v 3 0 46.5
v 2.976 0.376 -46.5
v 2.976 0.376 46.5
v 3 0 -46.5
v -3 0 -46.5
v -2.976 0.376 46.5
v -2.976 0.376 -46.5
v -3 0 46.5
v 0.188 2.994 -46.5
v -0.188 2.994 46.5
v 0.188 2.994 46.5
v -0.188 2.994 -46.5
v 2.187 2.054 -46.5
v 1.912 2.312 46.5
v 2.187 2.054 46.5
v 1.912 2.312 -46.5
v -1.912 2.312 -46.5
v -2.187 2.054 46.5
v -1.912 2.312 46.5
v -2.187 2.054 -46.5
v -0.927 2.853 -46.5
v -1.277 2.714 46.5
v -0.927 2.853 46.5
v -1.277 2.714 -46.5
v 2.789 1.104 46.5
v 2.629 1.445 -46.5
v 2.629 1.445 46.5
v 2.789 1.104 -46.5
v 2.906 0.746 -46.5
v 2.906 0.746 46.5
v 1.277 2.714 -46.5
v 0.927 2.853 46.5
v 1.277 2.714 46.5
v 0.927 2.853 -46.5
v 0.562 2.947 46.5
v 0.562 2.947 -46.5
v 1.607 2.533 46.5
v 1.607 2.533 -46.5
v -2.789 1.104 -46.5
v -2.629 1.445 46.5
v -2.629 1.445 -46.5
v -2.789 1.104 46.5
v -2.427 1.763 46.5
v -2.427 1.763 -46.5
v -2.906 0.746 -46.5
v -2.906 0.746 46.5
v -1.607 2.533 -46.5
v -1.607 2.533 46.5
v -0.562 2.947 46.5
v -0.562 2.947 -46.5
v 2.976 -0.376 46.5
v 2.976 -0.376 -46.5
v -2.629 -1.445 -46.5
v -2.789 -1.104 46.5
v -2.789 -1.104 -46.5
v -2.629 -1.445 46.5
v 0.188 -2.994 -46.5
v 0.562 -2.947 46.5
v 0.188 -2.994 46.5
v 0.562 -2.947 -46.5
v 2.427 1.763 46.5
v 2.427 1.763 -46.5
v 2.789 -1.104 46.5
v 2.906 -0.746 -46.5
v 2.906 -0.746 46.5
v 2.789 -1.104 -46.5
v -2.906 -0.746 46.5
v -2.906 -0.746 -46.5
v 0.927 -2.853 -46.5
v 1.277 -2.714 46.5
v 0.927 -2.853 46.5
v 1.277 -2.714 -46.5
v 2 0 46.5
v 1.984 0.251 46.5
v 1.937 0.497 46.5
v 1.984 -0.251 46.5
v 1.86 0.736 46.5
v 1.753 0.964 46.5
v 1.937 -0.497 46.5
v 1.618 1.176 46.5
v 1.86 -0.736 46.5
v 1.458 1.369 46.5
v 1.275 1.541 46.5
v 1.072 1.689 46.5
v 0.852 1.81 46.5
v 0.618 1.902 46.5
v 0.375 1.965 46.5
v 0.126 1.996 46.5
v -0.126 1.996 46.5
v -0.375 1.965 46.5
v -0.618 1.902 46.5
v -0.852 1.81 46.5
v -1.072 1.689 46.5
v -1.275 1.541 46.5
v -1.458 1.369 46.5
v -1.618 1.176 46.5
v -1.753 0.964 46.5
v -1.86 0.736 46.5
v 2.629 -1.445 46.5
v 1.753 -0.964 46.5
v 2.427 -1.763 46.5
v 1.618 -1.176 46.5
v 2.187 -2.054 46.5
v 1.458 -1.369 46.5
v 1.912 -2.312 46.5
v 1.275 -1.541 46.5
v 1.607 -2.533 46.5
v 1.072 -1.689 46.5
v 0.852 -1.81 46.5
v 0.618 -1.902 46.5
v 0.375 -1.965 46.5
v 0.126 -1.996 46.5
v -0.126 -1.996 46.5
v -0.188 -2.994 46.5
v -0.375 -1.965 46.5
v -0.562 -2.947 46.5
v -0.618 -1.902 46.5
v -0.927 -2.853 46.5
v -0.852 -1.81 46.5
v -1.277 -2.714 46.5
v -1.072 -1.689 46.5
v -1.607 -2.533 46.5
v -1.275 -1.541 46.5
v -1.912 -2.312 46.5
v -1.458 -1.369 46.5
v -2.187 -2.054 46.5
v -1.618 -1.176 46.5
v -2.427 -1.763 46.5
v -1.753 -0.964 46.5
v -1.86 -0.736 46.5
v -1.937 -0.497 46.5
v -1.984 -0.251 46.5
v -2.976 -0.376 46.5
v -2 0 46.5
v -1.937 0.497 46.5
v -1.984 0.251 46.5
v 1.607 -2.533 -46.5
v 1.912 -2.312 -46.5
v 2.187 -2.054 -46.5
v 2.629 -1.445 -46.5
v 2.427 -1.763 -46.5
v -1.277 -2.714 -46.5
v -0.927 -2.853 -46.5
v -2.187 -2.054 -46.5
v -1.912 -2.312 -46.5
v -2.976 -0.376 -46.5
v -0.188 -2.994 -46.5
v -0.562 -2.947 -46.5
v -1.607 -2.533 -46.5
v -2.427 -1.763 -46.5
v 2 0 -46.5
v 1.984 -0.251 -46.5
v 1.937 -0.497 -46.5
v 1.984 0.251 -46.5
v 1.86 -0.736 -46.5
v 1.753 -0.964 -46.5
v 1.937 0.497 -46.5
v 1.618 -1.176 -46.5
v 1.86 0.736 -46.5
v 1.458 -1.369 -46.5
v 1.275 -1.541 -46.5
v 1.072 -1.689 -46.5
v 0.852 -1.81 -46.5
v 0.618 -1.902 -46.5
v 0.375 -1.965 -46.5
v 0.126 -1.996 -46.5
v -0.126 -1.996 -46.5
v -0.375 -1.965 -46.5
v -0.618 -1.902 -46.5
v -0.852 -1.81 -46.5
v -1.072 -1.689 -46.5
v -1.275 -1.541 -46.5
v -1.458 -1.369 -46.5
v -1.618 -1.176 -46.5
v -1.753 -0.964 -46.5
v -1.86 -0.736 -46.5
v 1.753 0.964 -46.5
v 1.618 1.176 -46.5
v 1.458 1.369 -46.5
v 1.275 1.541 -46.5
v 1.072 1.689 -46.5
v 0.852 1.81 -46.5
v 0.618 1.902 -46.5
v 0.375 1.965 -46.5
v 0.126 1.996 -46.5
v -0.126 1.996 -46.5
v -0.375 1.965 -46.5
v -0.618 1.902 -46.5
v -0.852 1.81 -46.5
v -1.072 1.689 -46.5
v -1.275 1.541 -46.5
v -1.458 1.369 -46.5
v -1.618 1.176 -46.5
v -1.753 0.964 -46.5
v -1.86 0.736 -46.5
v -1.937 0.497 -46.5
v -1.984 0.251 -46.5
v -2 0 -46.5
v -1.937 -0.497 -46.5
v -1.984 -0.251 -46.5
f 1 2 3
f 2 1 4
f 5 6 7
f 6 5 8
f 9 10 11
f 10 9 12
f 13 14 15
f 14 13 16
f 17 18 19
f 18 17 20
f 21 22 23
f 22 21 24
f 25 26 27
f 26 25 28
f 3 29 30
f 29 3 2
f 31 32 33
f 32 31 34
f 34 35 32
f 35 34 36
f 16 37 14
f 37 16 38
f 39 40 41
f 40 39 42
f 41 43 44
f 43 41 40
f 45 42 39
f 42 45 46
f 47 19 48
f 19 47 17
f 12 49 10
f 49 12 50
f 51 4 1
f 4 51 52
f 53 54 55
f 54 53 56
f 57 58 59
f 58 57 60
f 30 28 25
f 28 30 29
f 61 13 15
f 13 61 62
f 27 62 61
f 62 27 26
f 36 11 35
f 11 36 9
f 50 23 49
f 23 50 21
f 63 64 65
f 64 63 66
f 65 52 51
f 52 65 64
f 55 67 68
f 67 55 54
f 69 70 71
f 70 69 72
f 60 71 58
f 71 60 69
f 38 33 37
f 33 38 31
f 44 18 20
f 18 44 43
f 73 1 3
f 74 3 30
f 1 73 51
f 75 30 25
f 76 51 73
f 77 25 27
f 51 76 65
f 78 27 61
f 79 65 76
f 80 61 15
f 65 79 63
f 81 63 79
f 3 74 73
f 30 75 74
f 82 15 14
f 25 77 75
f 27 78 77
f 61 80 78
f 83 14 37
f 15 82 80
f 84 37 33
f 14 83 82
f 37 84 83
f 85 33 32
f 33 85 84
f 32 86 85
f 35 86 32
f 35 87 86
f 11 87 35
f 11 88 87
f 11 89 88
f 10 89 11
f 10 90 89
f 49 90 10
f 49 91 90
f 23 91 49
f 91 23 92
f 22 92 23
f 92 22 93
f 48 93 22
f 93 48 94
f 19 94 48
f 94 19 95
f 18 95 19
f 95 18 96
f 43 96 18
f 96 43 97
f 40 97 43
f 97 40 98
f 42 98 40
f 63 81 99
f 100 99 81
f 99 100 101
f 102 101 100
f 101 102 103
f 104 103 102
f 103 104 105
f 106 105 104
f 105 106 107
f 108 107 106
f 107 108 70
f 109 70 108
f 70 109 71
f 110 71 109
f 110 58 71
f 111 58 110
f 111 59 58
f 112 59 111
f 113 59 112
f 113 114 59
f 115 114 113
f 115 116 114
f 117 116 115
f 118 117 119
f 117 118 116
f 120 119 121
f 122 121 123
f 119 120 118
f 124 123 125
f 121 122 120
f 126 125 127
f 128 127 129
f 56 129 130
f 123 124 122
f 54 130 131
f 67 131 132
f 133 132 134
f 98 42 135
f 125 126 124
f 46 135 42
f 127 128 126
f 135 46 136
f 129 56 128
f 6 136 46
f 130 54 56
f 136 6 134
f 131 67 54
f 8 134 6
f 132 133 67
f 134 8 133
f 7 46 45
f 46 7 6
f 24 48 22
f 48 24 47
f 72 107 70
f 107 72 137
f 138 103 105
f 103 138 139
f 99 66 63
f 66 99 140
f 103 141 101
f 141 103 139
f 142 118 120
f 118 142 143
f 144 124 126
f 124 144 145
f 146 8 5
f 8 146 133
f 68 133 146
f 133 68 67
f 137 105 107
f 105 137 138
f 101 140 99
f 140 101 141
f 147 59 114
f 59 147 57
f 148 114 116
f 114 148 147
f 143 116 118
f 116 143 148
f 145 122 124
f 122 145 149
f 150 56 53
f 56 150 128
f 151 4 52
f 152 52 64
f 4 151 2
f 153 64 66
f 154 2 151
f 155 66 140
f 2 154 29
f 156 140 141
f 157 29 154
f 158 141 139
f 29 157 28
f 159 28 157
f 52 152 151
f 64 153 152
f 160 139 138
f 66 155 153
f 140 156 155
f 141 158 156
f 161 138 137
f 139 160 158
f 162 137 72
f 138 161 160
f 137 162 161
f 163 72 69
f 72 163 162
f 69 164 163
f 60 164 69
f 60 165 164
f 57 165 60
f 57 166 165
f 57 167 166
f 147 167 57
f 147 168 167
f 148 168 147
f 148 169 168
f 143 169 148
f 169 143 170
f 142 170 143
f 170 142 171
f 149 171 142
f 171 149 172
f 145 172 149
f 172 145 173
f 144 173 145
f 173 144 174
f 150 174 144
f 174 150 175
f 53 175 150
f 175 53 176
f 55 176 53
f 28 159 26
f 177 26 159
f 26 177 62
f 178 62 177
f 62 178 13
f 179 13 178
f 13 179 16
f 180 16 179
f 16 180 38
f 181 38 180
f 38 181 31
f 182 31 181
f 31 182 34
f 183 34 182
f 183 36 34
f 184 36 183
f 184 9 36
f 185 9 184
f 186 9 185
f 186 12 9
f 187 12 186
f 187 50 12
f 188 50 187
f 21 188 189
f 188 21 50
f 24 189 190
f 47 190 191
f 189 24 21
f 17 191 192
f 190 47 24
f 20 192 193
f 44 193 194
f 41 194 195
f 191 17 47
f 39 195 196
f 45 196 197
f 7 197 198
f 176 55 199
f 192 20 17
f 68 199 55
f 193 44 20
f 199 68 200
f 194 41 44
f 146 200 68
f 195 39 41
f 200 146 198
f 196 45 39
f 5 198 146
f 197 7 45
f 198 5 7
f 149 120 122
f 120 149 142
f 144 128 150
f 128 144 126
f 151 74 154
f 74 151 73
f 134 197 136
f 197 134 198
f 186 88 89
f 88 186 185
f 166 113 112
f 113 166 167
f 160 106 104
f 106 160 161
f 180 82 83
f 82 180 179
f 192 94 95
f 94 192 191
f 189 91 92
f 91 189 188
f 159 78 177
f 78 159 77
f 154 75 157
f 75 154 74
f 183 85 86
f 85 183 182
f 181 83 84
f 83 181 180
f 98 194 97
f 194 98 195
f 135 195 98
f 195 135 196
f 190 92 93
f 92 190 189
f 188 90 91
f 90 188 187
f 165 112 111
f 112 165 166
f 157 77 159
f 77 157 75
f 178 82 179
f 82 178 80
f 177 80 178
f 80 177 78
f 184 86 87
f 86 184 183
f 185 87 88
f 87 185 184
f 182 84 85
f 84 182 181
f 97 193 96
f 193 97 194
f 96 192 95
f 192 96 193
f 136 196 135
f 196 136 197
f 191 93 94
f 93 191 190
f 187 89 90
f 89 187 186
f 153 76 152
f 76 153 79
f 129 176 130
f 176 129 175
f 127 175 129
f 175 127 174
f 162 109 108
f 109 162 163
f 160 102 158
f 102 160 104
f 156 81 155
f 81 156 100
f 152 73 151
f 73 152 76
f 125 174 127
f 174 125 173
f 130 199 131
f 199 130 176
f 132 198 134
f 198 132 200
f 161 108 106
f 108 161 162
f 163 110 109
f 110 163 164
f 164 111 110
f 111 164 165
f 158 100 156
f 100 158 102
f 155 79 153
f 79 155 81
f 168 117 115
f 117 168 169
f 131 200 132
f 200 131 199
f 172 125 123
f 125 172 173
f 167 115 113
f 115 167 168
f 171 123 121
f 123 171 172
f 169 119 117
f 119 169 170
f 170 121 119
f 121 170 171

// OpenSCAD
$fn = 50;


difference() {
	union() {
		translate(v = [0, 0, -46.5000000000]) {
			cylinder(h = 93, r = 3.0000000000);
		}
	}
	union() {
		translate(v = [0, 0, -100.0000000000]) {
			cylinder(h = 200, r = 2.0000000000);
		}
	}
}
